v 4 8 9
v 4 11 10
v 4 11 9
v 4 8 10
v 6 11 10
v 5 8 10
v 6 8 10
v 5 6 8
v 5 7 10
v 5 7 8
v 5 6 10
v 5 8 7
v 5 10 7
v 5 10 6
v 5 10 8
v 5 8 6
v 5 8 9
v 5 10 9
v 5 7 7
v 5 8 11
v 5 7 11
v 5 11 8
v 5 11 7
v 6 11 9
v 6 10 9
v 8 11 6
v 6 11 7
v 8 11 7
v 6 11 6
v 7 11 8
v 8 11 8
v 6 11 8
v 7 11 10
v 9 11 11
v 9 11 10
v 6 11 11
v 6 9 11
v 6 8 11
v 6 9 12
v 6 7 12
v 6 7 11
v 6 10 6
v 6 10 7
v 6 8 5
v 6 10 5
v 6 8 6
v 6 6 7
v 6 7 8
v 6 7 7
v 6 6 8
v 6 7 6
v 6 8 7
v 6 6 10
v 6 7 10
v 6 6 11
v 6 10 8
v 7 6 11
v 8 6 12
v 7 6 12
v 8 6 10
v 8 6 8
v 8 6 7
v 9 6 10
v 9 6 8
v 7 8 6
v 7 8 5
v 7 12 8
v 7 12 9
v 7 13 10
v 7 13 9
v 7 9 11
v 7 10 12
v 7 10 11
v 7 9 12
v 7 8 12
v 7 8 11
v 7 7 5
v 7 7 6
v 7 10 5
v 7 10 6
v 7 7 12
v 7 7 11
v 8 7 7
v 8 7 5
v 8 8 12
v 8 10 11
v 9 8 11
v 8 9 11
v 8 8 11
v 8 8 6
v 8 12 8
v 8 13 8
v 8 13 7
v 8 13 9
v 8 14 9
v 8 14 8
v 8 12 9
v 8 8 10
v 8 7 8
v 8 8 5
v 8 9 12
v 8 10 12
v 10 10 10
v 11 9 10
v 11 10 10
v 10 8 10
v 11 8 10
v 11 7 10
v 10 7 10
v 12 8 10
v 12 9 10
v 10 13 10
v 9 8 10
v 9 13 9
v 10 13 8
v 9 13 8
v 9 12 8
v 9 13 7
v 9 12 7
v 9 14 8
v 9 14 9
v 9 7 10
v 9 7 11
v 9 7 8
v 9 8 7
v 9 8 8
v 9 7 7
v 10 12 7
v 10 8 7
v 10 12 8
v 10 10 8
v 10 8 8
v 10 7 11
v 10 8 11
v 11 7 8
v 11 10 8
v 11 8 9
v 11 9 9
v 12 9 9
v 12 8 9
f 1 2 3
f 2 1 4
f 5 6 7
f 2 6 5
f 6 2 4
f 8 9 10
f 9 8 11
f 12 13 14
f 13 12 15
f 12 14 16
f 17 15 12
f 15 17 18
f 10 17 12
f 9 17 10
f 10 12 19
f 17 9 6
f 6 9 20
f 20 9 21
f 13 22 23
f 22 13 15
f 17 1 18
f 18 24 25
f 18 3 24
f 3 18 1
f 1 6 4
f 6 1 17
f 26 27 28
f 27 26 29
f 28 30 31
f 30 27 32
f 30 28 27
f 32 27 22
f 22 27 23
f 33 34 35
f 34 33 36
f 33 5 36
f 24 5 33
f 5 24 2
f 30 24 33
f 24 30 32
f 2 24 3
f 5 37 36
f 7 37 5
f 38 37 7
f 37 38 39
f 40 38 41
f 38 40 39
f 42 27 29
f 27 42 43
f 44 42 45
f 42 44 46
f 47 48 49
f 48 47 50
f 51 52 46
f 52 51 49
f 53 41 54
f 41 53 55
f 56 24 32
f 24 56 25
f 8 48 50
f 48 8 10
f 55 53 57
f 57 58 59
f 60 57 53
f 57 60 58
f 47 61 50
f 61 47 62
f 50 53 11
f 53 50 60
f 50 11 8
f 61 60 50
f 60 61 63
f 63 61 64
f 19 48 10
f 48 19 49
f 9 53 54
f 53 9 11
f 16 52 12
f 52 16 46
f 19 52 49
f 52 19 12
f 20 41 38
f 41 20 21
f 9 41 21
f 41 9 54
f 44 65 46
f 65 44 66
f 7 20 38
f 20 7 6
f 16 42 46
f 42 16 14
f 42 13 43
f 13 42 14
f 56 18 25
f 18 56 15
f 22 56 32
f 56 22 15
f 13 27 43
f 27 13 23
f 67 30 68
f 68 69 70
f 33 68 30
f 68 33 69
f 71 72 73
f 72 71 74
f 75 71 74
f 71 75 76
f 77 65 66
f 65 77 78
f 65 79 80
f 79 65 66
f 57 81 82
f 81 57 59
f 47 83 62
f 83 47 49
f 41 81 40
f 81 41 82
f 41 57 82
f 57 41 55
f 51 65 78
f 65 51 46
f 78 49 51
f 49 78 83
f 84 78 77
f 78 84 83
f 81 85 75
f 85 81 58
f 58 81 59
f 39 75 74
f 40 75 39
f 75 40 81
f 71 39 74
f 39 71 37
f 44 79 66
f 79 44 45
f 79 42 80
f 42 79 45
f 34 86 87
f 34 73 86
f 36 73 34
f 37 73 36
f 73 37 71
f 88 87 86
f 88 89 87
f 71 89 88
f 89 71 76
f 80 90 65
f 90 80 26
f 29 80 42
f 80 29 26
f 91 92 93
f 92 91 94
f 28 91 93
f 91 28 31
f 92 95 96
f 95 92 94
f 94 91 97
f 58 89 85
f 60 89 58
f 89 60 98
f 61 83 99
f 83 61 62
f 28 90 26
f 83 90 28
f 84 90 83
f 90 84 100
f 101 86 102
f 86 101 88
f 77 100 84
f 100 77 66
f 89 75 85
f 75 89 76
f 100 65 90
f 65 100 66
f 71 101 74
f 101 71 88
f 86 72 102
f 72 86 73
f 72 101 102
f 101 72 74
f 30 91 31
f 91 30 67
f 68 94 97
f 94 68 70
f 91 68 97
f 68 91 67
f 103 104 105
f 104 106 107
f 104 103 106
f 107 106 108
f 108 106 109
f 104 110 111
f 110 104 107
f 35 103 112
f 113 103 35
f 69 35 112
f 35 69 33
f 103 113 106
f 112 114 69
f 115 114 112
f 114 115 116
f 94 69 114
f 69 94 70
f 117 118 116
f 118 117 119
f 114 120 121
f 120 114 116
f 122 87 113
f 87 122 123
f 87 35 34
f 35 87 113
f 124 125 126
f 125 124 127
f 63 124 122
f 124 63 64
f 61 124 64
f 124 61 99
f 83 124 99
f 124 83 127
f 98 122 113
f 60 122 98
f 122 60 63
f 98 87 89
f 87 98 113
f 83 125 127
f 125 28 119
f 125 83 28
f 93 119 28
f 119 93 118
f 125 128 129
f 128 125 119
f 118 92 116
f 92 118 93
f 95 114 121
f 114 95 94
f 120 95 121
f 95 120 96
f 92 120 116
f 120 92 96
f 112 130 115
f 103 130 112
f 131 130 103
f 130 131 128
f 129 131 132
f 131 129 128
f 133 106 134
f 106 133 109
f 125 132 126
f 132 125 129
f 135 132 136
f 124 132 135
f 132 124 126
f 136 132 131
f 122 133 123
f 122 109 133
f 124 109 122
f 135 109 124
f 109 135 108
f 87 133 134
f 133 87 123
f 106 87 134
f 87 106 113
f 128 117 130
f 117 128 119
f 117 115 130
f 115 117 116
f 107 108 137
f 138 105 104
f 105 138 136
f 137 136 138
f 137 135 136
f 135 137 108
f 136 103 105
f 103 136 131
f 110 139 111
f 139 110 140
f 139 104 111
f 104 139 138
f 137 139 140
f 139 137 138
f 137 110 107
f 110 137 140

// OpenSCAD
// Create matrix
mr = 	[
[4,8,9],
[4,9,9],
[4,10,9],
[5,6,8],
[5,6,9],
[5,7,7],
[5,7,8],
[5,7,9],
[5,7,10],
[5,8,6],
[5,8,7],
[5,8,8],
[5,8,9],
[5,9,6],
[5,9,7],
[5,9,8],
[5,9,9],
[5,10,7],
[5,10,9],
[6,6,7],
[6,6,8],
[6,6,9],
[6,6,10],
[6,7,6],
[6,7,7],
[6,7,8],
[6,7,9],
[6,7,10],
[6,7,11],
[6,8,5],
[6,8,6],
[6,8,7],
[6,8,8],
[6,8,9],
[6,8,10],
[6,8,11],
[6,9,5],
[6,9,6],
[6,9,7],
[6,9,8],
[6,9,9],
[6,9,10],
[6,10,6],
[6,10,7],
[6,10,8],
[6,10,9],
[6,10,10],
[7,6,7],
[7,6,8],
[7,6,9],
[7,6,10],
[7,6,11],
[7,7,5],
[7,7,6],
[7,7,7],
[7,7,8],
[7,7,9],
[7,7,10],
[7,7,11],
[7,8,6],
[7,8,7],
[7,8,8],
[7,8,9],
[7,8,10],
[7,9,6],
[7,9,7],
[7,9,8],
[7,9,9],
[7,9,10],
[7,9,11],
[7,10,6],
[7,10,7],
[7,10,8],
[7,10,9],
[7,10,10],
[7,11,8],
[7,11,9],
[7,12,9],
[8,6,8],
[8,6,9],
[8,7,7],
[8,7,8],
[8,7,9],
[8,8,7],
[8,8,8],
[8,8,9],
[8,8,10],
[8,9,7],
[8,9,8],
[8,9,9],
[8,9,10],
[8,10,7],
[8,10,8],
[8,10,9],
[8,10,10],
[8,11,7],
[8,11,8],
[8,11,9],
[8,12,7],
[8,12,8],
[8,12,9],
[8,13,8],
[9,7,8],
[9,7,9],
[9,7,10],
[9,8,7],
[9,8,8],
[9,8,9],
[9,9,7],
[9,9,8],
[9,9,9],
[9,10,7],
[9,10,8],
[9,10,9],
[9,11,7],
[9,11,8],
[9,11,9],
[9,12,8],
[9,12,9],
[10,7,8],
[10,7,9],
[10,8,8],
[10,8,9],
[10,9,8],
[10,9,9],
[11,8,9],
		];
// Draw cubes
// Z-axis
for (a =[0:len(mr)-1]){
	color([1,0,0]) translate([mr[a][0], mr[a][1], mr[a][2]])cube([1,1,1]);
			
}
